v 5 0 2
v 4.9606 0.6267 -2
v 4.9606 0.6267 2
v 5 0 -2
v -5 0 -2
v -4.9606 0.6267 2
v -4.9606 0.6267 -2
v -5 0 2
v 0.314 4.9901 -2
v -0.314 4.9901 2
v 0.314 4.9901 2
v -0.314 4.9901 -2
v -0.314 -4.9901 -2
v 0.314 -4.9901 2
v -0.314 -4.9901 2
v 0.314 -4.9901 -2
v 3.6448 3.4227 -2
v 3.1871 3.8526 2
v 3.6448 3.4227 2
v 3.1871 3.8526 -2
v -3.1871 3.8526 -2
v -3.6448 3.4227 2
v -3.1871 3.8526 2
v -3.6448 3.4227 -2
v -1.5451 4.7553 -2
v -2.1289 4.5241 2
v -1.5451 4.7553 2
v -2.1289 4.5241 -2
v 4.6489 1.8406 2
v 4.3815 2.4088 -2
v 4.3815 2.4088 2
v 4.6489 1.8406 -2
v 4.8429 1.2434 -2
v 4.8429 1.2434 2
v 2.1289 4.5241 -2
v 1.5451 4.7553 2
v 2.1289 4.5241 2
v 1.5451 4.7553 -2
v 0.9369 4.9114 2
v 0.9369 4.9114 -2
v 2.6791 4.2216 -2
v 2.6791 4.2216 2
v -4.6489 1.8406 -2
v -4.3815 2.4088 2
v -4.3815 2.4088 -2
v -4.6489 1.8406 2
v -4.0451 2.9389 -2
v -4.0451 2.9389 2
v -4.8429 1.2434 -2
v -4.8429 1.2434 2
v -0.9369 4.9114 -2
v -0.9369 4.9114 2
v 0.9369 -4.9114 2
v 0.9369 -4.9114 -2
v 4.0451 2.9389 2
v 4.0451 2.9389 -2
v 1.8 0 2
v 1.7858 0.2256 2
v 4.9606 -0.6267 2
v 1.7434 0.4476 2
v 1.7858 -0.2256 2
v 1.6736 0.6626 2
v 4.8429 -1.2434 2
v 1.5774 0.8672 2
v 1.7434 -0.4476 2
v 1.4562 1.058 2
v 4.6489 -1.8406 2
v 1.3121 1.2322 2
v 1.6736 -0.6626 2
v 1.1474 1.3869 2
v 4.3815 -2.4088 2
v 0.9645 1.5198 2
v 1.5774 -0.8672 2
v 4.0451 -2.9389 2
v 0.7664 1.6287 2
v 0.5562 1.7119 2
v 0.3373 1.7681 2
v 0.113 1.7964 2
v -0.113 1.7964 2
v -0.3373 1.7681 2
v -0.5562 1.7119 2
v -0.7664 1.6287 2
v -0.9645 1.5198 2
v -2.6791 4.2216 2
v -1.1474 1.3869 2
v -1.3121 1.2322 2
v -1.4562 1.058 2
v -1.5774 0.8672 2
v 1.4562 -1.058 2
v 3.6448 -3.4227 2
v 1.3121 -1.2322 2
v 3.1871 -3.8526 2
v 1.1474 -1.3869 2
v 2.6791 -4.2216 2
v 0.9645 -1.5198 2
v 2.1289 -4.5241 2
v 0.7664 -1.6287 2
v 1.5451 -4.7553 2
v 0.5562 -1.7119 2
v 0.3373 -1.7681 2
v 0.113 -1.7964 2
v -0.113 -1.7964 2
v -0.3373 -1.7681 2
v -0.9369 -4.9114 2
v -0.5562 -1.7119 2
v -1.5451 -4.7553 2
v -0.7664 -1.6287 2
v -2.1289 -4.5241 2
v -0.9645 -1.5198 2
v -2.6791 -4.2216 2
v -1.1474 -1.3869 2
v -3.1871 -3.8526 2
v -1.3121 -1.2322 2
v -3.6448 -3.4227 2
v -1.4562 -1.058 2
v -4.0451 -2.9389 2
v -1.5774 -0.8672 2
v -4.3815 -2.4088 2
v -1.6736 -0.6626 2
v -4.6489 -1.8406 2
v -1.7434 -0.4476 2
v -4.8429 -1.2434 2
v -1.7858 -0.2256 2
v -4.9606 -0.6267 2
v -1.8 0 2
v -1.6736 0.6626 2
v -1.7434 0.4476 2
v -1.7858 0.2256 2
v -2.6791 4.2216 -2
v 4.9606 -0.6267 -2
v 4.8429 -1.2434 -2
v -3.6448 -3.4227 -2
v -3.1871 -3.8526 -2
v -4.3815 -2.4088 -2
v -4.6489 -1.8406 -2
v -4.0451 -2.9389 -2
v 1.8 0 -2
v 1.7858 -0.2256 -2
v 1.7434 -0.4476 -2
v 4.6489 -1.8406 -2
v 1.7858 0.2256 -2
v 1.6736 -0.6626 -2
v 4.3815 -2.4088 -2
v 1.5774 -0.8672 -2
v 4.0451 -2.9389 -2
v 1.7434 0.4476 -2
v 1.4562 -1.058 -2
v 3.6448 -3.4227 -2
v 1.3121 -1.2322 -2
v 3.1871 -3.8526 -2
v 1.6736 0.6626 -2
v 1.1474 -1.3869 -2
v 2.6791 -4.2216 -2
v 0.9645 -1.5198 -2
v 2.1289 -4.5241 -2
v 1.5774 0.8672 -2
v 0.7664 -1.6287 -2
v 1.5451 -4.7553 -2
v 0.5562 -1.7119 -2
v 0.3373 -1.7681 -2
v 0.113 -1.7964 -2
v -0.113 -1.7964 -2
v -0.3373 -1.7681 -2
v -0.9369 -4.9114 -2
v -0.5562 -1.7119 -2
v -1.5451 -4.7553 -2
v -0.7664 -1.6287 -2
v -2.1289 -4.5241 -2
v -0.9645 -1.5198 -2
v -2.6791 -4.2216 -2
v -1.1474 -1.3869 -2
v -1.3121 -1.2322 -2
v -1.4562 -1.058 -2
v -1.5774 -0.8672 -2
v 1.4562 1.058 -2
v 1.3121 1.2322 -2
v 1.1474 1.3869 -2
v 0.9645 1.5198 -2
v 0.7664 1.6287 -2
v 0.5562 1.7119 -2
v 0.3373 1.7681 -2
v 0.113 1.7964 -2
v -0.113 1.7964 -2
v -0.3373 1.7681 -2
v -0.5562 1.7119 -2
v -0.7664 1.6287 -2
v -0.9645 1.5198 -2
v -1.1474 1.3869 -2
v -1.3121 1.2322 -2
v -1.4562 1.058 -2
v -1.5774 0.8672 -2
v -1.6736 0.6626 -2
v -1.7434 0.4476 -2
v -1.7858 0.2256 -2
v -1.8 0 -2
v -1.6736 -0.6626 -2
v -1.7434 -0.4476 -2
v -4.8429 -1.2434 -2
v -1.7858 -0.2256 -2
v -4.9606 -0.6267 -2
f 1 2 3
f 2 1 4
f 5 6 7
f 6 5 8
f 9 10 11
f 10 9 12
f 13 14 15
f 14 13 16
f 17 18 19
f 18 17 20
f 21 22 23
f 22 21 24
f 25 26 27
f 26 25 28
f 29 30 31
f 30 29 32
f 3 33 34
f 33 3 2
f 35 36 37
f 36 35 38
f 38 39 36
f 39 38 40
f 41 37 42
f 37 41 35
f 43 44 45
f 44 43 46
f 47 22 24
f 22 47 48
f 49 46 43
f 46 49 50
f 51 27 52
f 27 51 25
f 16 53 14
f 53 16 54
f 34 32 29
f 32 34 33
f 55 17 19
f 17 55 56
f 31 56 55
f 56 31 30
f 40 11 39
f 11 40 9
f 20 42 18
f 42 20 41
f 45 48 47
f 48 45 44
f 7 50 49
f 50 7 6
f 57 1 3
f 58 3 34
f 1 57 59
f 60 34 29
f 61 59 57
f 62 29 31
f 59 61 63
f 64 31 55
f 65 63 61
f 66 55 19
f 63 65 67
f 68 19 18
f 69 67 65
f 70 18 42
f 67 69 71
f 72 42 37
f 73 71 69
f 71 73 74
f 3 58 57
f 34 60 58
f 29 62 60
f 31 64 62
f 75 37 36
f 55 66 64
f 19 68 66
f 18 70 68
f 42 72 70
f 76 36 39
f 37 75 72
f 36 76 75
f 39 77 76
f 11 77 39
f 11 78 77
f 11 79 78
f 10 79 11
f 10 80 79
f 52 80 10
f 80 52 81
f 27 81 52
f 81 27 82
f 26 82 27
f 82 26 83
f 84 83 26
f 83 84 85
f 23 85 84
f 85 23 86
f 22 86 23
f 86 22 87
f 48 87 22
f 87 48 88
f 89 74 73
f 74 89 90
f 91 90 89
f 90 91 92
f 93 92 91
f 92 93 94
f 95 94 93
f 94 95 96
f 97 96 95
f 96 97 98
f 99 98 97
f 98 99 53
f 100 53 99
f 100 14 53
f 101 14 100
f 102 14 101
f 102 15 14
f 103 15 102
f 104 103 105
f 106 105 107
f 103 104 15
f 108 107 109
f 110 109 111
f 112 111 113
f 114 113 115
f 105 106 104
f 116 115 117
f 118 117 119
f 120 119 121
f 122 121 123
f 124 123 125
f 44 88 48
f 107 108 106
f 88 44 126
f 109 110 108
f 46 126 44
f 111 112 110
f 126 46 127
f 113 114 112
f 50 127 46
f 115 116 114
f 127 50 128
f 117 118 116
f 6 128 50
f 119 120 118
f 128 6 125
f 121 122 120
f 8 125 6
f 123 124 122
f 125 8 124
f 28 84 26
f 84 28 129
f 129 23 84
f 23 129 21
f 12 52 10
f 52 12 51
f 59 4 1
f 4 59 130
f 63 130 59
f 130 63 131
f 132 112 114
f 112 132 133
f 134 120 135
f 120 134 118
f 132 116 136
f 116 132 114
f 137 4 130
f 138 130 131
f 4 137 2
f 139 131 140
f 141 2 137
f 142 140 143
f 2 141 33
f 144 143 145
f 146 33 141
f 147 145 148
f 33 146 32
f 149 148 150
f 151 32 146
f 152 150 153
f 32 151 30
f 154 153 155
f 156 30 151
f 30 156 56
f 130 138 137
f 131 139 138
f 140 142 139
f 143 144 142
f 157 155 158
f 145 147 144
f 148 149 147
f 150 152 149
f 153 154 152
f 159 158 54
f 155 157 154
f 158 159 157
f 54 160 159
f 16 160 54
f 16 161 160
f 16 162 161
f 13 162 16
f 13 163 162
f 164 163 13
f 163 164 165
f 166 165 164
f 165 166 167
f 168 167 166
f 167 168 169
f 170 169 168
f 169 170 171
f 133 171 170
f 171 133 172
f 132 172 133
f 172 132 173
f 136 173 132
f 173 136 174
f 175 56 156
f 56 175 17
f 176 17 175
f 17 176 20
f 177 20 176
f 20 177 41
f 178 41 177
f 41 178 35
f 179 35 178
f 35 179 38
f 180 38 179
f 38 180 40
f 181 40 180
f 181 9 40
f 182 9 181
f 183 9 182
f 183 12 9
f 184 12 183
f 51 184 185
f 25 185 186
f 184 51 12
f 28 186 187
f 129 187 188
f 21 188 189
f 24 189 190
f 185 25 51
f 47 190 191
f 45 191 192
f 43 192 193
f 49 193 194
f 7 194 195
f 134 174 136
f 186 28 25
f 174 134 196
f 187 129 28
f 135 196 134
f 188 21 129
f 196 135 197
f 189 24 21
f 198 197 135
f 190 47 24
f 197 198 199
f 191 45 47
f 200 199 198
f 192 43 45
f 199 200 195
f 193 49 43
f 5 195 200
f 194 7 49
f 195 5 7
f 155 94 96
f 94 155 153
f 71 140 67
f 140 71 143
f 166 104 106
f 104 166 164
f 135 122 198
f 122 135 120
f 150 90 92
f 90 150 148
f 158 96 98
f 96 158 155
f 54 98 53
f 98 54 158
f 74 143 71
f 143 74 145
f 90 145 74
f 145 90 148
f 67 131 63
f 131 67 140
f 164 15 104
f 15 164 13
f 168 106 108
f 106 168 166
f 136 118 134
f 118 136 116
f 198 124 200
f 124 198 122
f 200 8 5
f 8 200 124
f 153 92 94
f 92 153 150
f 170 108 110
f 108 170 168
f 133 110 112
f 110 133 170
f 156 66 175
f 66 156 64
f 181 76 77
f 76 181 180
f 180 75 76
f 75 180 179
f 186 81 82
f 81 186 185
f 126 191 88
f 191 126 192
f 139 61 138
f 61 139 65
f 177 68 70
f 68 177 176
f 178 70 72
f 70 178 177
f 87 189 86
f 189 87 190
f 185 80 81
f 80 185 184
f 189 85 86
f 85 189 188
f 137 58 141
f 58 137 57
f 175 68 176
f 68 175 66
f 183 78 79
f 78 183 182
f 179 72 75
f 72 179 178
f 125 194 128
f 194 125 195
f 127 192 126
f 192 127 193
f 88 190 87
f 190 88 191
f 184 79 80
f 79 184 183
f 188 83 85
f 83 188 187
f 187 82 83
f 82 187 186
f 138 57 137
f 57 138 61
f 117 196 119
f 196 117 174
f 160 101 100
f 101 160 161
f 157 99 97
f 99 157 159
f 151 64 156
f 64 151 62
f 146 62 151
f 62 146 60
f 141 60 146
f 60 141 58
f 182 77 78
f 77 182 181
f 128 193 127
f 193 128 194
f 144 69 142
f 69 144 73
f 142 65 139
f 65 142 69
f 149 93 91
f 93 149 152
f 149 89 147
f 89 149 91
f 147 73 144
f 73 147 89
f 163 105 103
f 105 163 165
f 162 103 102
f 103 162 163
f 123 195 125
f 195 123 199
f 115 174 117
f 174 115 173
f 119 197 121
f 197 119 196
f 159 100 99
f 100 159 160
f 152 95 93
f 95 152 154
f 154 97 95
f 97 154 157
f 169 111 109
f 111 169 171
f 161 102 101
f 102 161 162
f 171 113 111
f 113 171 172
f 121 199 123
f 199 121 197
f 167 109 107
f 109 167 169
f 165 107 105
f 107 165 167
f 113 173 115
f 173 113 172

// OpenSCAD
$fn = 50;


difference() {
	union() {
		translate(v = [0, 0, -2.0000000000]) {
			cylinder(h = 4, r = 5.0000000000);
		}
	}
	union() {
		translate(v = [0, 0, -100.0000000000]) {
			cylinder(h = 200, r = 1.8000000000);
		}
	}
}
